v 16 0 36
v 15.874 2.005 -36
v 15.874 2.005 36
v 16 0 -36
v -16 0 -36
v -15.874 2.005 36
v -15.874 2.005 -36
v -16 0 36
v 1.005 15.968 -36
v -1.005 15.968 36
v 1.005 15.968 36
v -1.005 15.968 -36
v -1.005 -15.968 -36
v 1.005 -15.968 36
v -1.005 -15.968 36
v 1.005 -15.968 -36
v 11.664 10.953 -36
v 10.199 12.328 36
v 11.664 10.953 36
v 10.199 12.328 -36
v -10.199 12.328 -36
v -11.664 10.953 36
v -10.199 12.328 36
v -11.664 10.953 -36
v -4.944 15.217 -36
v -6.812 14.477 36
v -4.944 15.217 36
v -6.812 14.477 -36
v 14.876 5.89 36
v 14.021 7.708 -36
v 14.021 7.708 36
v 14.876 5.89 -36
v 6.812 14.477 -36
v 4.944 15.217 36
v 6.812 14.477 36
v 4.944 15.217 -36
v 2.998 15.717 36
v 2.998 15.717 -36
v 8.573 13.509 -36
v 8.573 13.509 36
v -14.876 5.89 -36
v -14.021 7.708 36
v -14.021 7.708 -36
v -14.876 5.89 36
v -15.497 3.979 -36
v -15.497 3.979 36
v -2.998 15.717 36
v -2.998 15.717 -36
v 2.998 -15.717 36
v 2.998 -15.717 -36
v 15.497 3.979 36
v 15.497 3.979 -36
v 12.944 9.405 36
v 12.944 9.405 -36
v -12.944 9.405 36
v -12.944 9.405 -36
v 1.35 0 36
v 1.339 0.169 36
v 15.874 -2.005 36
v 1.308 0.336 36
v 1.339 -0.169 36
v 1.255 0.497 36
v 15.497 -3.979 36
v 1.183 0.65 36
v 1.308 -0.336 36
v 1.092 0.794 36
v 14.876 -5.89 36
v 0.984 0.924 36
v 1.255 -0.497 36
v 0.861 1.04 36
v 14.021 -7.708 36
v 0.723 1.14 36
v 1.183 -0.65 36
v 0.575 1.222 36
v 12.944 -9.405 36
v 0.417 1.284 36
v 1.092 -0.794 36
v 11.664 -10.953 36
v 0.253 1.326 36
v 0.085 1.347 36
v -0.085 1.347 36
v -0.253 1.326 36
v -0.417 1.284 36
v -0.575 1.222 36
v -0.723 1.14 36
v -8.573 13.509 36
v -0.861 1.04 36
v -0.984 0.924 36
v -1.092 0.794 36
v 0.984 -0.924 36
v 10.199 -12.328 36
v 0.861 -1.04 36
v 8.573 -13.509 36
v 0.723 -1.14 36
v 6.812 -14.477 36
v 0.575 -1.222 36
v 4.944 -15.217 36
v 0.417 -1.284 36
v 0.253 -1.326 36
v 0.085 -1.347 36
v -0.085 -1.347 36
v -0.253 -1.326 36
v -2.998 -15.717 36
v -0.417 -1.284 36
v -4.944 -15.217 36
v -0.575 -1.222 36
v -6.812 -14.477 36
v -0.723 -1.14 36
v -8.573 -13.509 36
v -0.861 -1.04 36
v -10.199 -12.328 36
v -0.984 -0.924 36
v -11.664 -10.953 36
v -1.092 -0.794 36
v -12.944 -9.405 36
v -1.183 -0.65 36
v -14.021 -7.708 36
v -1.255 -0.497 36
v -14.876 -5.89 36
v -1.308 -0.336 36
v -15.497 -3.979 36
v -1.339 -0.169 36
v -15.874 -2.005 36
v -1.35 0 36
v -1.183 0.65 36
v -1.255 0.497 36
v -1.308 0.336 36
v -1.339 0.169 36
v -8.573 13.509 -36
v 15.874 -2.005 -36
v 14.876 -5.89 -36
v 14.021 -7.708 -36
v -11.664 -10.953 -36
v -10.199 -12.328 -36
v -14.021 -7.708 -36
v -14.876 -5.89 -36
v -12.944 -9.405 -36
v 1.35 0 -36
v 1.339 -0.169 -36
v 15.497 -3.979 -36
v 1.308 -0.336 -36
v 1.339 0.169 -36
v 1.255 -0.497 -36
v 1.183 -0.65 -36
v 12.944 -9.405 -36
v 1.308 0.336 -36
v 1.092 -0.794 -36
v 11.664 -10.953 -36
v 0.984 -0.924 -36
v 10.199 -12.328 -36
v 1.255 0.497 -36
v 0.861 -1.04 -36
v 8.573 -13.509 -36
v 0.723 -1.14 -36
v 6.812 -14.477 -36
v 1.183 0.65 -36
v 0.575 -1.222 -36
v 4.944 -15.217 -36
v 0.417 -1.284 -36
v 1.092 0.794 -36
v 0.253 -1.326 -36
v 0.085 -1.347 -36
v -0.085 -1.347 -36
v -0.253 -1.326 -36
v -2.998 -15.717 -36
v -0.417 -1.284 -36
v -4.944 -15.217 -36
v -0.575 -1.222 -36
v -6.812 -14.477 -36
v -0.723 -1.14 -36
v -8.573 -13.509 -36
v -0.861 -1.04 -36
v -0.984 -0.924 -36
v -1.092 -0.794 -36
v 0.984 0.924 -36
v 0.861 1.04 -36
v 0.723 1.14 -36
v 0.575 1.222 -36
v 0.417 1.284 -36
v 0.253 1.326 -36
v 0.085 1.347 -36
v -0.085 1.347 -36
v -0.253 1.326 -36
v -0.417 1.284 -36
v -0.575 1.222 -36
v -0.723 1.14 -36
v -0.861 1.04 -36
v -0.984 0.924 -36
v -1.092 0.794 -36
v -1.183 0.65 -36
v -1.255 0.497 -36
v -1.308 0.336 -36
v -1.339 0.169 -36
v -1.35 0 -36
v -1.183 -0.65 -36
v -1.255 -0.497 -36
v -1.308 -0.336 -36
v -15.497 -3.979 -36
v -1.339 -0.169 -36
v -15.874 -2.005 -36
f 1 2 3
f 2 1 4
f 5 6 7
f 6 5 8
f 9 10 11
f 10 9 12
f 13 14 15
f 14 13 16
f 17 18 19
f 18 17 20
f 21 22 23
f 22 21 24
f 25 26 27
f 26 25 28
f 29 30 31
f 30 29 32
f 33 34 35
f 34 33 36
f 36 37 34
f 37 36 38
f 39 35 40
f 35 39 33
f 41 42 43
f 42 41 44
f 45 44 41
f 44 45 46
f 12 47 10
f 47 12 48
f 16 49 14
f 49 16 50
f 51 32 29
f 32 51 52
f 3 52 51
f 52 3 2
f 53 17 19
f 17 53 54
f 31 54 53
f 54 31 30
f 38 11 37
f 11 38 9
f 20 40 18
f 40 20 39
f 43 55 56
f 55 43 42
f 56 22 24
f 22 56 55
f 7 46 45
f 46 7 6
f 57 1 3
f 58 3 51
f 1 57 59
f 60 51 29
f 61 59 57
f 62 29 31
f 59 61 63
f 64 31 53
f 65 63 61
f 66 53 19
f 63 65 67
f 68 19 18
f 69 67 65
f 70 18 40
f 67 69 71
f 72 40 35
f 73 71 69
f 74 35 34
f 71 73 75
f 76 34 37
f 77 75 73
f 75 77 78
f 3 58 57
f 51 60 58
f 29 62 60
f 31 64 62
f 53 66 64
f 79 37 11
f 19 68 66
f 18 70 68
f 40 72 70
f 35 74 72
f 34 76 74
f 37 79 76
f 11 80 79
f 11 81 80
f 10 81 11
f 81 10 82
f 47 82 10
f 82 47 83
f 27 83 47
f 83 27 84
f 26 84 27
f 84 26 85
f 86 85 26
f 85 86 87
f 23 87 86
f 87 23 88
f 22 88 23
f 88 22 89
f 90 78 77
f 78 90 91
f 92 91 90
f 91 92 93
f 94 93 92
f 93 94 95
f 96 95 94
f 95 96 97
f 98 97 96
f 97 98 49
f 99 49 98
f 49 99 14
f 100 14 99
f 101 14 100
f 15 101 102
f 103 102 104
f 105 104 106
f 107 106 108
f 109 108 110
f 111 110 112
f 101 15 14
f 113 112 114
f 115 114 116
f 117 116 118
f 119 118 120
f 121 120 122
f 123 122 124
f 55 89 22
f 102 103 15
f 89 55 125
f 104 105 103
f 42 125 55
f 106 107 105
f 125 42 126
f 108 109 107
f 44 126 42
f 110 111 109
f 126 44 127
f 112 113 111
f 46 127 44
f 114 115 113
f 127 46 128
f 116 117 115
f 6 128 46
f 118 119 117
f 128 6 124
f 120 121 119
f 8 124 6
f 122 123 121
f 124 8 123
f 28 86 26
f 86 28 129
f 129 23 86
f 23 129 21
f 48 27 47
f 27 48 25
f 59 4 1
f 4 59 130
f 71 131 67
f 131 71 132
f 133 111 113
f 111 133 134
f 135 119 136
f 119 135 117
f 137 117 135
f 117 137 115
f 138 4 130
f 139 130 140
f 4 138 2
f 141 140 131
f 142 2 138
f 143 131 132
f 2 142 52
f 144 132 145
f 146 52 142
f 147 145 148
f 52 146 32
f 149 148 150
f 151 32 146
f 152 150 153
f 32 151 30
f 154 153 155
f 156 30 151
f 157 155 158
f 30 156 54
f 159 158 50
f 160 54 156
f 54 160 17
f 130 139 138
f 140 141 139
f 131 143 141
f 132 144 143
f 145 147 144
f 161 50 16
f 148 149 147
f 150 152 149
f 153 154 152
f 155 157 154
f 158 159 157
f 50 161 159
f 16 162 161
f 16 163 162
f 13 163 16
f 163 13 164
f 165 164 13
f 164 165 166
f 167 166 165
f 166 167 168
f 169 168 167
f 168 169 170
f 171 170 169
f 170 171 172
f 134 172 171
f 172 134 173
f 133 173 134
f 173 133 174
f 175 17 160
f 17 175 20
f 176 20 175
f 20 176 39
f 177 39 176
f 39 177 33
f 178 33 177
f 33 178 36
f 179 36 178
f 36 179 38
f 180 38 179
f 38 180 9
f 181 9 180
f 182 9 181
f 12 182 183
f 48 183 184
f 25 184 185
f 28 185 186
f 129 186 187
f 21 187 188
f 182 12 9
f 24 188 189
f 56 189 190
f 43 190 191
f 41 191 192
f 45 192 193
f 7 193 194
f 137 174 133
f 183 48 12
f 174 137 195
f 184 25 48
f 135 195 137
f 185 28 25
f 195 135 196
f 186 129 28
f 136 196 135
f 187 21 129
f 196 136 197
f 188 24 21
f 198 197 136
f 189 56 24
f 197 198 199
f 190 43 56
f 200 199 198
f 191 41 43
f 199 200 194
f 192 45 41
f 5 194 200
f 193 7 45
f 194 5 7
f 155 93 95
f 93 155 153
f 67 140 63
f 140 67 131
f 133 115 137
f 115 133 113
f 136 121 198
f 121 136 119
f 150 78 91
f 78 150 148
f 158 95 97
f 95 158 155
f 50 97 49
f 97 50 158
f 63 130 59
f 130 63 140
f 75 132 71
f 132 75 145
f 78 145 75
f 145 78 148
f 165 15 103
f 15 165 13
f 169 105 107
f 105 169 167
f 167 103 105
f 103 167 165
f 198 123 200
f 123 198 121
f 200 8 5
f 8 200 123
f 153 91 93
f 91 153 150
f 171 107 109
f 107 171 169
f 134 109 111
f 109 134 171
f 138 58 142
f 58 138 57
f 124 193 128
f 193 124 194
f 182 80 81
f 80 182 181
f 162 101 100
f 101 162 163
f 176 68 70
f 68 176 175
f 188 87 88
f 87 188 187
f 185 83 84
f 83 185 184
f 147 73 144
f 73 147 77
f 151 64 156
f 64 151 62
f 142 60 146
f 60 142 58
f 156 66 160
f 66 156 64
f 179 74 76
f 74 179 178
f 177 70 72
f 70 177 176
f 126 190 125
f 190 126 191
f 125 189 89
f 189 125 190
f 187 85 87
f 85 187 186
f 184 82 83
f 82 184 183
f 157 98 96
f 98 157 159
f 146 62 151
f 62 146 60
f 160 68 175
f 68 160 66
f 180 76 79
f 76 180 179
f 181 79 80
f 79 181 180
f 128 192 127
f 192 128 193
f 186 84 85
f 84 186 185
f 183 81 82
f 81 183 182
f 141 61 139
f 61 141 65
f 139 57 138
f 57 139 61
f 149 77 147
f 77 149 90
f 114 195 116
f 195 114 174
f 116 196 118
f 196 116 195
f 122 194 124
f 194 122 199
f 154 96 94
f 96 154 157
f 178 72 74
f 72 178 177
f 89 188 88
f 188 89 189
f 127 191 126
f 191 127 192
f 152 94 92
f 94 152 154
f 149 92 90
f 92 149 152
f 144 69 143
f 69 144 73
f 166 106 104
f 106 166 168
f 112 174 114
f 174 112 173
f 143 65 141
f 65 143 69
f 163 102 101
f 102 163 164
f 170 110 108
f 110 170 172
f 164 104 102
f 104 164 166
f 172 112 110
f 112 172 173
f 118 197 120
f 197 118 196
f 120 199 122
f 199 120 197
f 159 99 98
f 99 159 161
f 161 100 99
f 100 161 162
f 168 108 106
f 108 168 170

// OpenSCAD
$fn = 50;


difference() {
	union() {
		translate(v = [0, 0, -36.0000000000]) {
			cylinder(h = 72, r = 16.0000000000);
		}
	}
	union() {
		translate(v = [0, 0, -100.0000000000]) {
			cylinder(h = 200, r = 1.3500000000);
		}
	}
}
